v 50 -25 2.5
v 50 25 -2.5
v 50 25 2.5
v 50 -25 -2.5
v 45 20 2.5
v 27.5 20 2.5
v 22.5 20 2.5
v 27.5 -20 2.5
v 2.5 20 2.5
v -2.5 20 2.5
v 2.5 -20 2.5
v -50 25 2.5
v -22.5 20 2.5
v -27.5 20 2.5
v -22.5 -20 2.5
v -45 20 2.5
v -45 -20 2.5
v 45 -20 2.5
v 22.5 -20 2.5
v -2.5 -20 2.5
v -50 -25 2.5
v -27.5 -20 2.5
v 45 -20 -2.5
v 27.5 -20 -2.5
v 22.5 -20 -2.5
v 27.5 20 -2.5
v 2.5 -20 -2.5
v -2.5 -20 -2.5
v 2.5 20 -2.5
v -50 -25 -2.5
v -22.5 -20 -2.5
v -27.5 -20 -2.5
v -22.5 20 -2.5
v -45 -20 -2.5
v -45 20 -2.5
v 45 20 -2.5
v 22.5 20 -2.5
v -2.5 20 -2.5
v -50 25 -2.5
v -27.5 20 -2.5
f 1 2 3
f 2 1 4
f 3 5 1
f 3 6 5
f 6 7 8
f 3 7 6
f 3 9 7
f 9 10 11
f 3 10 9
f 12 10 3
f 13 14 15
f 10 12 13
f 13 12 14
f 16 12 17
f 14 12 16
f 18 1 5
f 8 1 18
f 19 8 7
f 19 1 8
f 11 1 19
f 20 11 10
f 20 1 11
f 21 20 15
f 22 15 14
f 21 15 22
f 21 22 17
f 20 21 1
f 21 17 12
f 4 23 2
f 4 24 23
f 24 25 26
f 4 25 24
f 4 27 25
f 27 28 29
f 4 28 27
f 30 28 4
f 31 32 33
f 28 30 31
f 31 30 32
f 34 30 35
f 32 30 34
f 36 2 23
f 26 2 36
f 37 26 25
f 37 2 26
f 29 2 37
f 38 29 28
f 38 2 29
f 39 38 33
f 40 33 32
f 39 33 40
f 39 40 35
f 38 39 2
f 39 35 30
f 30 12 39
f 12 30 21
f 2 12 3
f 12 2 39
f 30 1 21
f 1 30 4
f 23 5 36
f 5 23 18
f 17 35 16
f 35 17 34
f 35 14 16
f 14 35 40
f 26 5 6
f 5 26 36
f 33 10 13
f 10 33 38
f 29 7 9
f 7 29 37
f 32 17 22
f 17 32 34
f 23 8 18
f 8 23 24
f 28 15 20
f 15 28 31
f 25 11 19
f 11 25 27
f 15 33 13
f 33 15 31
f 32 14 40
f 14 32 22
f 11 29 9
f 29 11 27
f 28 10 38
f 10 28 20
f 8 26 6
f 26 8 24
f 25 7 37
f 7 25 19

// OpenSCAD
// Parameters for the rectangular frame
frame_length = 100;  // Length of the outer rectangle
frame_width = 50;    // Width of the outer rectangle
frame_thickness = 5; // Thickness of the frame
division_count = 3;  // Number of internal divisions (modified to create 4 openings)
division_thickness = 5; // Thickness of the internal divisions

module rectangular_frame() {
    // Outer frame
    difference() {
        // Outer rectangle
        cube([frame_length, frame_width, frame_thickness], center = true);
        
        // Hollow inner rectangle
        translate([0, 0, -0.1]) // Slightly offset to ensure proper subtraction
        cube([frame_length - 2 * frame_thickness, frame_width - 2 * frame_thickness, frame_thickness + 0.2], center = true);
    }
    
    // Internal divisions
    for (i = [1:division_count]) {
        translate([-(frame_length / 2) + (i * (frame_length / (division_count + 1))), 0, 0])
        cube([division_thickness, frame_width, frame_thickness], center = true);
    }
}

// Render the rectangular frame
rectangular_frame();
